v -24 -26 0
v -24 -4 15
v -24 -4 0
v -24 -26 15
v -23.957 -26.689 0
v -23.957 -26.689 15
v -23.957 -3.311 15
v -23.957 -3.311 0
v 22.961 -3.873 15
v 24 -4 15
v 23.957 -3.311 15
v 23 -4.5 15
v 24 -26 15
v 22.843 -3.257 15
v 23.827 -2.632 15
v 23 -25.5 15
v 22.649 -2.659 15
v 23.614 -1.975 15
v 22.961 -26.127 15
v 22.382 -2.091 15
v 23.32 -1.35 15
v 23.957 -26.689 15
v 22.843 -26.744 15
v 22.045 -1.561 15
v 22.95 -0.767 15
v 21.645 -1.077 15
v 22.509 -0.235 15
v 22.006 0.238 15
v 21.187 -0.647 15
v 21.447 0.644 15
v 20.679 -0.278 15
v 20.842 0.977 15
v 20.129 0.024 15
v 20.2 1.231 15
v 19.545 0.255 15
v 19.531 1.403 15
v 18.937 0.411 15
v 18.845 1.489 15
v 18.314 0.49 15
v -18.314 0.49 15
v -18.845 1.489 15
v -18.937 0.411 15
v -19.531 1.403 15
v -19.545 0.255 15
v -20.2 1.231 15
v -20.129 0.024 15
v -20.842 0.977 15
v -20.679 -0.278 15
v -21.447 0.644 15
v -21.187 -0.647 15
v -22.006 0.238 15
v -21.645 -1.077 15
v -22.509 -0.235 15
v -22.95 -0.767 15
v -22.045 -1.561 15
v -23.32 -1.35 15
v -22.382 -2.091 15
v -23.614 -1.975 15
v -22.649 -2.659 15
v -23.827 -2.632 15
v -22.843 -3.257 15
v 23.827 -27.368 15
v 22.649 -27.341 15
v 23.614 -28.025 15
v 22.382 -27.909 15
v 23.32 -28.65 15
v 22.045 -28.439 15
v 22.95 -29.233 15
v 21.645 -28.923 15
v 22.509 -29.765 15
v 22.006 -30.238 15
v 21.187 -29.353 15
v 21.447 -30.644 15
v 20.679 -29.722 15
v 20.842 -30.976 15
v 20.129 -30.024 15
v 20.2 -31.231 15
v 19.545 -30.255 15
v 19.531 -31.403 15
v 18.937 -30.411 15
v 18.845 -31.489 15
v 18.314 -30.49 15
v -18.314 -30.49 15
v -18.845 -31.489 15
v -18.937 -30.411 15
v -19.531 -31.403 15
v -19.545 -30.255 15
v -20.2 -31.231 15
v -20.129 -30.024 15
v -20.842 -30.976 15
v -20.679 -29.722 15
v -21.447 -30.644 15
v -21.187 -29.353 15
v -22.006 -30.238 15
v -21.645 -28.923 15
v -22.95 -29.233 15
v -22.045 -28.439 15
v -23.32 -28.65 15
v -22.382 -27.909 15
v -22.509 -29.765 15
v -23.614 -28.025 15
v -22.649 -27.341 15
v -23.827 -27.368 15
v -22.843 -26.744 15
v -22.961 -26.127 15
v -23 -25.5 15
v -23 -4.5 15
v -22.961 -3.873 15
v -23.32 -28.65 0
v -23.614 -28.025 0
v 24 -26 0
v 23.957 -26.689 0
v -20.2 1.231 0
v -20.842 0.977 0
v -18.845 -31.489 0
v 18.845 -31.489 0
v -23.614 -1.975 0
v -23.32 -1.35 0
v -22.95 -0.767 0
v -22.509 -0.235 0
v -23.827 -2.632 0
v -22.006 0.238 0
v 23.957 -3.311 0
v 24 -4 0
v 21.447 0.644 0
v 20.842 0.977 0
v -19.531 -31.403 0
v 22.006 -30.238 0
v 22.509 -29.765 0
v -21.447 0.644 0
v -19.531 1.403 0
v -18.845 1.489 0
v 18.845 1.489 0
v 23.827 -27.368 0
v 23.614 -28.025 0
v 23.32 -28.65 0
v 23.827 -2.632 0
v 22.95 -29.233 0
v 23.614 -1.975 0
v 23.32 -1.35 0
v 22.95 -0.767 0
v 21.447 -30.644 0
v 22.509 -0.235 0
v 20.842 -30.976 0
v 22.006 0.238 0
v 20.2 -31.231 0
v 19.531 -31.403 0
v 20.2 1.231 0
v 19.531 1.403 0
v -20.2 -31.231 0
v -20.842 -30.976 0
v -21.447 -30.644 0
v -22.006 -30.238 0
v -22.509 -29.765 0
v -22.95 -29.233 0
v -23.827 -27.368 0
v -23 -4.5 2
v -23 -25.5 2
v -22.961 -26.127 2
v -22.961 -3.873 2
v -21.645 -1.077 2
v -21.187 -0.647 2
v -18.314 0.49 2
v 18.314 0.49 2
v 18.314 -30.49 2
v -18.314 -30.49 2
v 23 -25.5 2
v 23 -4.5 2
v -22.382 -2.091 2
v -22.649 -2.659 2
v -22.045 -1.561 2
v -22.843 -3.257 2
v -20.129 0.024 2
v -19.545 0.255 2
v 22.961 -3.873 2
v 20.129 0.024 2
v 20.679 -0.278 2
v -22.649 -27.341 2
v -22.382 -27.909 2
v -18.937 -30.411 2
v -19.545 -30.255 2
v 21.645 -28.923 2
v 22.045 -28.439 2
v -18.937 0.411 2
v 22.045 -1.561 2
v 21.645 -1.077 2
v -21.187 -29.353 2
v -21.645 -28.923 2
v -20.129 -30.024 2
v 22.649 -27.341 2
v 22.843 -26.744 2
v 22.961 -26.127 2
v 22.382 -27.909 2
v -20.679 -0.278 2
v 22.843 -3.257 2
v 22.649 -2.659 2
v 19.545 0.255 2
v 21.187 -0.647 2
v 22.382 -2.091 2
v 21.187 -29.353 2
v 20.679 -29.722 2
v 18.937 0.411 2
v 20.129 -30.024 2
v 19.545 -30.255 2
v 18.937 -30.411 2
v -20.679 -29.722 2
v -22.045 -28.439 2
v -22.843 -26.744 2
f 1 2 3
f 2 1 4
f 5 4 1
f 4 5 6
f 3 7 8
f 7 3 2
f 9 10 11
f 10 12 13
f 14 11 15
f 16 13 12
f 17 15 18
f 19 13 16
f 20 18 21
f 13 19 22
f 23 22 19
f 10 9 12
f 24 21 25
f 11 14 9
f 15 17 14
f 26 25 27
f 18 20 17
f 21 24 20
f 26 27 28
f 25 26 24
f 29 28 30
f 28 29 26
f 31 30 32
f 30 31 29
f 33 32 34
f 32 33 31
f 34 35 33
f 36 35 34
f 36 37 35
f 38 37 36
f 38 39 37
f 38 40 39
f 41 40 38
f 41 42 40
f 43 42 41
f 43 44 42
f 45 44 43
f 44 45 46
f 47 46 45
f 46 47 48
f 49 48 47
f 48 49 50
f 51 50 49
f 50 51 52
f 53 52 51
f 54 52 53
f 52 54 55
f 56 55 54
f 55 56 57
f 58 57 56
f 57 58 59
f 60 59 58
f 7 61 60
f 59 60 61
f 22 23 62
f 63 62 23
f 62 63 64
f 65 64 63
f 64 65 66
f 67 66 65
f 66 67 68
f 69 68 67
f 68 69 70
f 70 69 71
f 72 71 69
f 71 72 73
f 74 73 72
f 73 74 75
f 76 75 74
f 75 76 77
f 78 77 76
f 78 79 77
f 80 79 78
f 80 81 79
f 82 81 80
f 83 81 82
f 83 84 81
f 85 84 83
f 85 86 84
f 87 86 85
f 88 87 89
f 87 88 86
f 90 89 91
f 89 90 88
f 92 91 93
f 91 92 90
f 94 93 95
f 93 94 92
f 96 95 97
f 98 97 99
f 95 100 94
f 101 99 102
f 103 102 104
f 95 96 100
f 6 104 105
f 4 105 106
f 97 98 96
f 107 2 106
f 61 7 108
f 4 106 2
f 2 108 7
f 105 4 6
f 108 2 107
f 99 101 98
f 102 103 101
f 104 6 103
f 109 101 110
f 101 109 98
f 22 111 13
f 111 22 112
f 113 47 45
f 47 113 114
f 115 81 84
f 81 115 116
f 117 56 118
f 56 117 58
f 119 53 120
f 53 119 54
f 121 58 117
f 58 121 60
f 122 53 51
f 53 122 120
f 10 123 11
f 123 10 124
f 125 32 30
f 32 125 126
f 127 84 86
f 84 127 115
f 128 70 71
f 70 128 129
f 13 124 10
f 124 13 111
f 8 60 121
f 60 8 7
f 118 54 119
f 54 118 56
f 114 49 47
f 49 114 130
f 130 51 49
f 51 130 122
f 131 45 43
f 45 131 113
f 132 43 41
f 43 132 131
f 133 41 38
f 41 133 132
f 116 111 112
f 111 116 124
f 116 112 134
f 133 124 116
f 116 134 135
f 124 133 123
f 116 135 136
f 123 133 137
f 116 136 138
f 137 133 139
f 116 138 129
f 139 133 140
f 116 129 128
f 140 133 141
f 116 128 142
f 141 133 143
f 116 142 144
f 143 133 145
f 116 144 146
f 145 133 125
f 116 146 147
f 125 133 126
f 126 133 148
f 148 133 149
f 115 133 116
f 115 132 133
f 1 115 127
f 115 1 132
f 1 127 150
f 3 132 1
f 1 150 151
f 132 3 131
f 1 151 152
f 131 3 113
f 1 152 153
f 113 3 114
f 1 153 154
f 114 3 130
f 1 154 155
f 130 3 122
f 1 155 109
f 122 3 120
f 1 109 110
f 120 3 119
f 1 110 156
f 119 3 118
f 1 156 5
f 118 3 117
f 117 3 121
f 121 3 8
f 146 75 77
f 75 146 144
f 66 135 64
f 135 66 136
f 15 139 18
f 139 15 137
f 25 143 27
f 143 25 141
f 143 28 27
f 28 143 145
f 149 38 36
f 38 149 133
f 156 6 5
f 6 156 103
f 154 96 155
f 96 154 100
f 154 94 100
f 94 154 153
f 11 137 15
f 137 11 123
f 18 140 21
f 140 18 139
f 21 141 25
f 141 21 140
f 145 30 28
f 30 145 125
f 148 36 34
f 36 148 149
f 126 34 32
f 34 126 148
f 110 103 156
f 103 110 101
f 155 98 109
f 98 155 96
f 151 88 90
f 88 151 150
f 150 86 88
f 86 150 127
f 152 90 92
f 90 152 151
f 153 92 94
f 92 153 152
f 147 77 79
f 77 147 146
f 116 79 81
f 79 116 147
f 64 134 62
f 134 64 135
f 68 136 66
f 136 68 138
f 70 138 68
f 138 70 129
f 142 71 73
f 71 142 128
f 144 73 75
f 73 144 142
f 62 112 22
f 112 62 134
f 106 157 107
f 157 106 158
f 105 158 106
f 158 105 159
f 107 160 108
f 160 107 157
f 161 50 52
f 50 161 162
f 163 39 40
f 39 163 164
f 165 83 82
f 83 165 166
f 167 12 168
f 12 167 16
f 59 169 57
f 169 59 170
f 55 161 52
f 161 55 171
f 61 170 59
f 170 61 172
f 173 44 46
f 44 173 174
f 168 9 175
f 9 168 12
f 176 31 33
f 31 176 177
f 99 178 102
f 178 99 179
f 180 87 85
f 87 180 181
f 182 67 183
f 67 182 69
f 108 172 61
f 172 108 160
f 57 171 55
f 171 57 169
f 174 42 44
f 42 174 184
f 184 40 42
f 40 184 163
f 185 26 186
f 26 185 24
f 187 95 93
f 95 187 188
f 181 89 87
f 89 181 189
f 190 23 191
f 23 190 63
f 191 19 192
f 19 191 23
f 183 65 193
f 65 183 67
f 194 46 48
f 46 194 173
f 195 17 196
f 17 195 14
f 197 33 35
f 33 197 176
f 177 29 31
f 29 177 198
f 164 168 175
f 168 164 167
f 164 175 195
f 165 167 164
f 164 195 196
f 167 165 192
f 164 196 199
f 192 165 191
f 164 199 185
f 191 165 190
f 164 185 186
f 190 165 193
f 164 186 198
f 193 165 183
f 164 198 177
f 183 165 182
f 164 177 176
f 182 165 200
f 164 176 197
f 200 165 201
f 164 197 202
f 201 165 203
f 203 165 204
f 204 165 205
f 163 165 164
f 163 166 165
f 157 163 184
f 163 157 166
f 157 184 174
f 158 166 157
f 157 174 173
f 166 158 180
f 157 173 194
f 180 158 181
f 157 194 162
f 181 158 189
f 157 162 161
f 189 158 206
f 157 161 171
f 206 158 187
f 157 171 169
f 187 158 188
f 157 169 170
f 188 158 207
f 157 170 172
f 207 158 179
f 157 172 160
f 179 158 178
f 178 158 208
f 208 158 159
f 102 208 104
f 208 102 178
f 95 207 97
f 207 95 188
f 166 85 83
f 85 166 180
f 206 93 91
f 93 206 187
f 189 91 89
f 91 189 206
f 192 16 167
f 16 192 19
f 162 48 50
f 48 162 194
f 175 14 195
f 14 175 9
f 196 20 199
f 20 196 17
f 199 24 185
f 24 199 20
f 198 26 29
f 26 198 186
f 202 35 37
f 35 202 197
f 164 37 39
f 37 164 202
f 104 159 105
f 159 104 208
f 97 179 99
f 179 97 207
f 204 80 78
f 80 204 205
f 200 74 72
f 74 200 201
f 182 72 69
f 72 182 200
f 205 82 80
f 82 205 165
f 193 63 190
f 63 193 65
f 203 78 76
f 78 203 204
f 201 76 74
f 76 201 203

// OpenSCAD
$fn = 50;


difference() {
	union() {
		translate(v = [0, -15.0000000000, 0]) {
			hull() {
				translate(v = [-18.5000000000, 11.0000000000, 0]) {
					cylinder(h = 15, r = 5.5000000000);
				}
				translate(v = [18.5000000000, 11.0000000000, 0]) {
					cylinder(h = 15, r = 5.5000000000);
				}
				translate(v = [-18.5000000000, -11.0000000000, 0]) {
					cylinder(h = 15, r = 5.5000000000);
				}
				translate(v = [18.5000000000, -11.0000000000, 0]) {
					cylinder(h = 15, r = 5.5000000000);
				}
			}
		}
	}
	union() {
		translate(v = [0, -15.0000000000, 2]) {
			hull() {
				translate(v = [-18.0000000000, 10.5000000000, 0]) {
					cylinder(h = 30, r = 5);
				}
				translate(v = [18.0000000000, 10.5000000000, 0]) {
					cylinder(h = 30, r = 5);
				}
				translate(v = [-18.0000000000, -10.5000000000, 0]) {
					cylinder(h = 30, r = 5);
				}
				translate(v = [18.0000000000, -10.5000000000, 0]) {
					cylinder(h = 30, r = 5);
				}
			}
		}
	}
}
